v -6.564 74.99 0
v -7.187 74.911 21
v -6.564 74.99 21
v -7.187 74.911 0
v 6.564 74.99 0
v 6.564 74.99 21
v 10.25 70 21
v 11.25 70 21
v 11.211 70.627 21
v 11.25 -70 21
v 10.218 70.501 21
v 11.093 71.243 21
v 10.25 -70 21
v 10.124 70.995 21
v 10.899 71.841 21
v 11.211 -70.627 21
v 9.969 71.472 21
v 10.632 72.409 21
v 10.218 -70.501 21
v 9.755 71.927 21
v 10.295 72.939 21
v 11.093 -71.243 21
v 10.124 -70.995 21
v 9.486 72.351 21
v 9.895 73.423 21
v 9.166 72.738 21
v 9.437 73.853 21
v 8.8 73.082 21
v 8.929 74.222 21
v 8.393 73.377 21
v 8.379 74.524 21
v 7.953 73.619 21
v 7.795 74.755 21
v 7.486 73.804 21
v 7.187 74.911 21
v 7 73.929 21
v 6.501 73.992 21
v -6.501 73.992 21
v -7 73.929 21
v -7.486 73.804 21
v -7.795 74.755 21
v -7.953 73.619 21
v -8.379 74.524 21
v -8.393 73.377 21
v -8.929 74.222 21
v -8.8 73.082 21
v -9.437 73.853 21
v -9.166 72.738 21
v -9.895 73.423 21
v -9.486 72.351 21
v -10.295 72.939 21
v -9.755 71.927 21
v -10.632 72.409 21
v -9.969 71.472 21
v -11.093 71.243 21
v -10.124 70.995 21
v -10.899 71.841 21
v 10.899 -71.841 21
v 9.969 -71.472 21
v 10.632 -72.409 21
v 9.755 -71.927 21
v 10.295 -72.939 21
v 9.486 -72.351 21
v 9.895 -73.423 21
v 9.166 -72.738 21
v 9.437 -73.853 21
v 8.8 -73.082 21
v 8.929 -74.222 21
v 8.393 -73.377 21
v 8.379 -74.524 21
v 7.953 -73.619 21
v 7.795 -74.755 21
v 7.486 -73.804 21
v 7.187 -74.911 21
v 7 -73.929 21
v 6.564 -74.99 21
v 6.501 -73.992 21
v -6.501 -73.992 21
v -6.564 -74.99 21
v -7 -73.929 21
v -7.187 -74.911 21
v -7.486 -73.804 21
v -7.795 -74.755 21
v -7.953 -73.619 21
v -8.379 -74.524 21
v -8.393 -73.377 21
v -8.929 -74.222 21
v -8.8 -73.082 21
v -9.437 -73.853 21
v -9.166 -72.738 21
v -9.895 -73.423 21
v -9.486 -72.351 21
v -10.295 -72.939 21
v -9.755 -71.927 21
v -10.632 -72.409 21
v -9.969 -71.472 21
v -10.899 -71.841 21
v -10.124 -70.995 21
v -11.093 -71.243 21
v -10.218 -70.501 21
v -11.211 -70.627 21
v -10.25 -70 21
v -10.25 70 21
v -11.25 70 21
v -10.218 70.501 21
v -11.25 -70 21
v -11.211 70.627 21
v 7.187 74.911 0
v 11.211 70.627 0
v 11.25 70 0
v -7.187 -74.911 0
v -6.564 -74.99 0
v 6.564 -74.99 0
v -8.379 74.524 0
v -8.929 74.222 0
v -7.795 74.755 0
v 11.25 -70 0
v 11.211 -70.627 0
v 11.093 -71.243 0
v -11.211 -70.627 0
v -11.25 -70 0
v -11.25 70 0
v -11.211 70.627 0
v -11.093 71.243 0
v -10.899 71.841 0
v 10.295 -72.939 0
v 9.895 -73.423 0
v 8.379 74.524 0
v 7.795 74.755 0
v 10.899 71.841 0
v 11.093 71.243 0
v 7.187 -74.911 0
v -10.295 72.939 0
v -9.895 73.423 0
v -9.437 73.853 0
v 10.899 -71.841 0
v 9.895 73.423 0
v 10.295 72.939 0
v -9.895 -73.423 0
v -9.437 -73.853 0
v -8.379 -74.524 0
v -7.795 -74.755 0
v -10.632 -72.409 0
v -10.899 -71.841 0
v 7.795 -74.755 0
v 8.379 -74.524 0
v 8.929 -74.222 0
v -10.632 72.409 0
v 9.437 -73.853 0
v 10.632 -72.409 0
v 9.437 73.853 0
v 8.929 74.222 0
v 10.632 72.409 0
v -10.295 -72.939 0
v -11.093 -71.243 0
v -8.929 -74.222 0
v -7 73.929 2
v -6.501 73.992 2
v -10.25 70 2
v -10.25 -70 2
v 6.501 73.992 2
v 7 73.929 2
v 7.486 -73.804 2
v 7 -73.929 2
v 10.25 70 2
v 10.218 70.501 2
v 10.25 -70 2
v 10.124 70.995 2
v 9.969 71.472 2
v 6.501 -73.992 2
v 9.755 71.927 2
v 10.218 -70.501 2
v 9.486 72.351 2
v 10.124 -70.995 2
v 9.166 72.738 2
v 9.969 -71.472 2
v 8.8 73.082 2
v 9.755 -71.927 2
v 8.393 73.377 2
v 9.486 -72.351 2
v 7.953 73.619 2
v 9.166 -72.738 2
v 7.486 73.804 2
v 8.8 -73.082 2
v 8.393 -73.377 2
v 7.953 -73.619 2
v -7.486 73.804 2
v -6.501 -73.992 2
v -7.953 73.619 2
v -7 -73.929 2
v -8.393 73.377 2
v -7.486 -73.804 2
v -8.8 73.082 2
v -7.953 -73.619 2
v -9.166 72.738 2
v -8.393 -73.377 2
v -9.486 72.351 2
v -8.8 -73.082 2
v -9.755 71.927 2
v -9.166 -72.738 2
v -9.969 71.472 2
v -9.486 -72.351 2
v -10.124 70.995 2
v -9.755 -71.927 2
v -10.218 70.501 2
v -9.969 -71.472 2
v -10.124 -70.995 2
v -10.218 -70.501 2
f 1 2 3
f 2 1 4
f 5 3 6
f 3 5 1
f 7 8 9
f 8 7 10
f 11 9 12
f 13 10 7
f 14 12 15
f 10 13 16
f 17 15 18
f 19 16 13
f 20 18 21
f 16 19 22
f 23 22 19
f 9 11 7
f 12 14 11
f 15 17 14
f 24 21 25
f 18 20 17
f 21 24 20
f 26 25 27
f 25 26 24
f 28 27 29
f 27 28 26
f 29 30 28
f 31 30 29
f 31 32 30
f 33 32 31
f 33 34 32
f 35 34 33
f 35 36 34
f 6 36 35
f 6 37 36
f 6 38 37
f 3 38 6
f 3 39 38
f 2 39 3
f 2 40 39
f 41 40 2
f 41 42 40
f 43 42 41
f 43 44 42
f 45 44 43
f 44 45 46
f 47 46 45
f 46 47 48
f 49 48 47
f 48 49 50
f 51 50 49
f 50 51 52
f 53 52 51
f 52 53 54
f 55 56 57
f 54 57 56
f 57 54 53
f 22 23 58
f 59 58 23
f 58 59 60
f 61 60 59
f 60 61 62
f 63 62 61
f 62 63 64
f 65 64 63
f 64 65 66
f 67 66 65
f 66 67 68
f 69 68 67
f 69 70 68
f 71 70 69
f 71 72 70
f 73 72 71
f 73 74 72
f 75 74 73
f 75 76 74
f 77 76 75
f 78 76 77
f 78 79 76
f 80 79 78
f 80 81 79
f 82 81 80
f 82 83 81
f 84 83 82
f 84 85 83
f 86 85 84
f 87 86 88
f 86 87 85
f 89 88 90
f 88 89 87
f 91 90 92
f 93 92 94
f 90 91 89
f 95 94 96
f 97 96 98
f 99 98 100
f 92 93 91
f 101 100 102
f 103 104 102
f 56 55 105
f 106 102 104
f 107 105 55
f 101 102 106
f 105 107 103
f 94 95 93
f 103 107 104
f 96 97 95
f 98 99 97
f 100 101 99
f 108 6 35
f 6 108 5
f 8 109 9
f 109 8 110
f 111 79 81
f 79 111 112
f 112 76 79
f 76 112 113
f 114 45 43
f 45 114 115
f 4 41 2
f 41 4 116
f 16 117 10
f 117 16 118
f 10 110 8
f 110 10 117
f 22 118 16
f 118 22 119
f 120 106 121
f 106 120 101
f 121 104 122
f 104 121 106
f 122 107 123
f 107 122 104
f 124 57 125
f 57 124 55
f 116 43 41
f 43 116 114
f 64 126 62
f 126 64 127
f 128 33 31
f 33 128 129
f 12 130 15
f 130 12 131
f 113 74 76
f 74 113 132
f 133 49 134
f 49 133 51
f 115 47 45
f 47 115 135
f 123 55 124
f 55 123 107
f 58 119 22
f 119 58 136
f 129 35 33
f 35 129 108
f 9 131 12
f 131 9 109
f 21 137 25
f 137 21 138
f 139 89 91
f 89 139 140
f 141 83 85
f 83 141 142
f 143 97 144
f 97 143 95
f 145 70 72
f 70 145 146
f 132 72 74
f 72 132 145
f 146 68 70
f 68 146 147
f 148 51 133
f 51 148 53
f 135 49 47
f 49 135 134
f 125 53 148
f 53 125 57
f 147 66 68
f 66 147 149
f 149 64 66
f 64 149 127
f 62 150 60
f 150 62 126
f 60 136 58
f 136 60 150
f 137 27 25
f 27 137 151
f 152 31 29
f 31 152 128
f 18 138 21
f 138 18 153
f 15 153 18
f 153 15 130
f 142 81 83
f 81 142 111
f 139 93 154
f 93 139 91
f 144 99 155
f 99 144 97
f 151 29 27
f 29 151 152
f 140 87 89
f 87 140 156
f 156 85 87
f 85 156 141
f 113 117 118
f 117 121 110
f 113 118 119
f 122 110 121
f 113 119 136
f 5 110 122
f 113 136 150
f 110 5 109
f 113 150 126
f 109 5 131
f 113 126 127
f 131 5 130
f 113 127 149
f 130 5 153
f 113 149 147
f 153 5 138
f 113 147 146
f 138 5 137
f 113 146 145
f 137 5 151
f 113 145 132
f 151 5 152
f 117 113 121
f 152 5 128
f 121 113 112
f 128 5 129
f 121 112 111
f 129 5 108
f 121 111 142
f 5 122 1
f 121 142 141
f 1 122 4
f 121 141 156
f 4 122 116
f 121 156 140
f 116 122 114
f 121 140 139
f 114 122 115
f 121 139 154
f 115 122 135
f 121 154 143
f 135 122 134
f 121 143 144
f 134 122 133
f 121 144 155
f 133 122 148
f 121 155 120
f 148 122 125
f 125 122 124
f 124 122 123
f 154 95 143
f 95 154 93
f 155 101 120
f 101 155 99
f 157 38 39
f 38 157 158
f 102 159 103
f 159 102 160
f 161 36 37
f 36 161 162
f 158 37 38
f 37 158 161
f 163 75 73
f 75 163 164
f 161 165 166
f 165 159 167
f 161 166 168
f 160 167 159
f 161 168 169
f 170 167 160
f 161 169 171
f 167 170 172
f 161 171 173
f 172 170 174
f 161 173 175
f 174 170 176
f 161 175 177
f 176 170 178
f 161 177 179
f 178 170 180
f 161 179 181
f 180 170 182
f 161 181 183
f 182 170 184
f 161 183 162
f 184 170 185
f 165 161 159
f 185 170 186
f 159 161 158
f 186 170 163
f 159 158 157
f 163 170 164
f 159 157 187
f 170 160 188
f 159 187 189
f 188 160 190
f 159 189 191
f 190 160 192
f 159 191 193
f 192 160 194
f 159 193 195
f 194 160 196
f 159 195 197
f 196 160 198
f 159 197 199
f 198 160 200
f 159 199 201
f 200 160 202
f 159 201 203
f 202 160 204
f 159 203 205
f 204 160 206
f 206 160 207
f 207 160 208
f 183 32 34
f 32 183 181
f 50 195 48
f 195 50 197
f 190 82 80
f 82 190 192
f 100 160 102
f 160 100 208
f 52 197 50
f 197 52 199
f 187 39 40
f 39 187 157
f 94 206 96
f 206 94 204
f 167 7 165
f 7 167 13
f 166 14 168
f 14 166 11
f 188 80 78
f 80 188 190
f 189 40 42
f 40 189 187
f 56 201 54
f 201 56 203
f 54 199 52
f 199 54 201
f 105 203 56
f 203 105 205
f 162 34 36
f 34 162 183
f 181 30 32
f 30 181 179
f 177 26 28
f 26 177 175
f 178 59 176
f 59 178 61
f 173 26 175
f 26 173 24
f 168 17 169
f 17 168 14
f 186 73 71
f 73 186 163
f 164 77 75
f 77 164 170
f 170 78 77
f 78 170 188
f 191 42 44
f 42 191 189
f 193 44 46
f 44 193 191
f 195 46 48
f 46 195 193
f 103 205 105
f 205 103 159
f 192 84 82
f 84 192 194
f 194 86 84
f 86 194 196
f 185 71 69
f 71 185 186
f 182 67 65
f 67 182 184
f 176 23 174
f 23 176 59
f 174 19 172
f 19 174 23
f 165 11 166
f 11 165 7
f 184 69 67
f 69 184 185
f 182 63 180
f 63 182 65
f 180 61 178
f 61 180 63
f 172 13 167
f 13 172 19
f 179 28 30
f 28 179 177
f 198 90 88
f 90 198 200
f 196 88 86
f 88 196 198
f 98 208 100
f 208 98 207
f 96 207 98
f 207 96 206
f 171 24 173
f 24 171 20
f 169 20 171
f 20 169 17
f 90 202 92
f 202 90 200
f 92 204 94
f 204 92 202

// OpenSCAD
$fn = 50;


difference() {
	union() {
		hull() {
			translate(v = [-6.2500000000, 70.0000000000, 0]) {
				cylinder(h = 21, r = 5);
			}
			translate(v = [6.2500000000, 70.0000000000, 0]) {
				cylinder(h = 21, r = 5);
			}
			translate(v = [-6.2500000000, -70.0000000000, 0]) {
				cylinder(h = 21, r = 5);
			}
			translate(v = [6.2500000000, -70.0000000000, 0]) {
				cylinder(h = 21, r = 5);
			}
		}
	}
	union() {
		translate(v = [0, 0, 2]) {
			hull() {
				translate(v = [-6.2500000000, 70.0000000000, 0]) {
					cylinder(h = 19, r = 4);
				}
				translate(v = [6.2500000000, 70.0000000000, 0]) {
					cylinder(h = 19, r = 4);
				}
				translate(v = [-6.2500000000, -70.0000000000, 0]) {
					cylinder(h = 19, r = 4);
				}
				translate(v = [6.2500000000, -70.0000000000, 0]) {
					cylinder(h = 19, r = 4);
				}
			}
		}
	}
}
